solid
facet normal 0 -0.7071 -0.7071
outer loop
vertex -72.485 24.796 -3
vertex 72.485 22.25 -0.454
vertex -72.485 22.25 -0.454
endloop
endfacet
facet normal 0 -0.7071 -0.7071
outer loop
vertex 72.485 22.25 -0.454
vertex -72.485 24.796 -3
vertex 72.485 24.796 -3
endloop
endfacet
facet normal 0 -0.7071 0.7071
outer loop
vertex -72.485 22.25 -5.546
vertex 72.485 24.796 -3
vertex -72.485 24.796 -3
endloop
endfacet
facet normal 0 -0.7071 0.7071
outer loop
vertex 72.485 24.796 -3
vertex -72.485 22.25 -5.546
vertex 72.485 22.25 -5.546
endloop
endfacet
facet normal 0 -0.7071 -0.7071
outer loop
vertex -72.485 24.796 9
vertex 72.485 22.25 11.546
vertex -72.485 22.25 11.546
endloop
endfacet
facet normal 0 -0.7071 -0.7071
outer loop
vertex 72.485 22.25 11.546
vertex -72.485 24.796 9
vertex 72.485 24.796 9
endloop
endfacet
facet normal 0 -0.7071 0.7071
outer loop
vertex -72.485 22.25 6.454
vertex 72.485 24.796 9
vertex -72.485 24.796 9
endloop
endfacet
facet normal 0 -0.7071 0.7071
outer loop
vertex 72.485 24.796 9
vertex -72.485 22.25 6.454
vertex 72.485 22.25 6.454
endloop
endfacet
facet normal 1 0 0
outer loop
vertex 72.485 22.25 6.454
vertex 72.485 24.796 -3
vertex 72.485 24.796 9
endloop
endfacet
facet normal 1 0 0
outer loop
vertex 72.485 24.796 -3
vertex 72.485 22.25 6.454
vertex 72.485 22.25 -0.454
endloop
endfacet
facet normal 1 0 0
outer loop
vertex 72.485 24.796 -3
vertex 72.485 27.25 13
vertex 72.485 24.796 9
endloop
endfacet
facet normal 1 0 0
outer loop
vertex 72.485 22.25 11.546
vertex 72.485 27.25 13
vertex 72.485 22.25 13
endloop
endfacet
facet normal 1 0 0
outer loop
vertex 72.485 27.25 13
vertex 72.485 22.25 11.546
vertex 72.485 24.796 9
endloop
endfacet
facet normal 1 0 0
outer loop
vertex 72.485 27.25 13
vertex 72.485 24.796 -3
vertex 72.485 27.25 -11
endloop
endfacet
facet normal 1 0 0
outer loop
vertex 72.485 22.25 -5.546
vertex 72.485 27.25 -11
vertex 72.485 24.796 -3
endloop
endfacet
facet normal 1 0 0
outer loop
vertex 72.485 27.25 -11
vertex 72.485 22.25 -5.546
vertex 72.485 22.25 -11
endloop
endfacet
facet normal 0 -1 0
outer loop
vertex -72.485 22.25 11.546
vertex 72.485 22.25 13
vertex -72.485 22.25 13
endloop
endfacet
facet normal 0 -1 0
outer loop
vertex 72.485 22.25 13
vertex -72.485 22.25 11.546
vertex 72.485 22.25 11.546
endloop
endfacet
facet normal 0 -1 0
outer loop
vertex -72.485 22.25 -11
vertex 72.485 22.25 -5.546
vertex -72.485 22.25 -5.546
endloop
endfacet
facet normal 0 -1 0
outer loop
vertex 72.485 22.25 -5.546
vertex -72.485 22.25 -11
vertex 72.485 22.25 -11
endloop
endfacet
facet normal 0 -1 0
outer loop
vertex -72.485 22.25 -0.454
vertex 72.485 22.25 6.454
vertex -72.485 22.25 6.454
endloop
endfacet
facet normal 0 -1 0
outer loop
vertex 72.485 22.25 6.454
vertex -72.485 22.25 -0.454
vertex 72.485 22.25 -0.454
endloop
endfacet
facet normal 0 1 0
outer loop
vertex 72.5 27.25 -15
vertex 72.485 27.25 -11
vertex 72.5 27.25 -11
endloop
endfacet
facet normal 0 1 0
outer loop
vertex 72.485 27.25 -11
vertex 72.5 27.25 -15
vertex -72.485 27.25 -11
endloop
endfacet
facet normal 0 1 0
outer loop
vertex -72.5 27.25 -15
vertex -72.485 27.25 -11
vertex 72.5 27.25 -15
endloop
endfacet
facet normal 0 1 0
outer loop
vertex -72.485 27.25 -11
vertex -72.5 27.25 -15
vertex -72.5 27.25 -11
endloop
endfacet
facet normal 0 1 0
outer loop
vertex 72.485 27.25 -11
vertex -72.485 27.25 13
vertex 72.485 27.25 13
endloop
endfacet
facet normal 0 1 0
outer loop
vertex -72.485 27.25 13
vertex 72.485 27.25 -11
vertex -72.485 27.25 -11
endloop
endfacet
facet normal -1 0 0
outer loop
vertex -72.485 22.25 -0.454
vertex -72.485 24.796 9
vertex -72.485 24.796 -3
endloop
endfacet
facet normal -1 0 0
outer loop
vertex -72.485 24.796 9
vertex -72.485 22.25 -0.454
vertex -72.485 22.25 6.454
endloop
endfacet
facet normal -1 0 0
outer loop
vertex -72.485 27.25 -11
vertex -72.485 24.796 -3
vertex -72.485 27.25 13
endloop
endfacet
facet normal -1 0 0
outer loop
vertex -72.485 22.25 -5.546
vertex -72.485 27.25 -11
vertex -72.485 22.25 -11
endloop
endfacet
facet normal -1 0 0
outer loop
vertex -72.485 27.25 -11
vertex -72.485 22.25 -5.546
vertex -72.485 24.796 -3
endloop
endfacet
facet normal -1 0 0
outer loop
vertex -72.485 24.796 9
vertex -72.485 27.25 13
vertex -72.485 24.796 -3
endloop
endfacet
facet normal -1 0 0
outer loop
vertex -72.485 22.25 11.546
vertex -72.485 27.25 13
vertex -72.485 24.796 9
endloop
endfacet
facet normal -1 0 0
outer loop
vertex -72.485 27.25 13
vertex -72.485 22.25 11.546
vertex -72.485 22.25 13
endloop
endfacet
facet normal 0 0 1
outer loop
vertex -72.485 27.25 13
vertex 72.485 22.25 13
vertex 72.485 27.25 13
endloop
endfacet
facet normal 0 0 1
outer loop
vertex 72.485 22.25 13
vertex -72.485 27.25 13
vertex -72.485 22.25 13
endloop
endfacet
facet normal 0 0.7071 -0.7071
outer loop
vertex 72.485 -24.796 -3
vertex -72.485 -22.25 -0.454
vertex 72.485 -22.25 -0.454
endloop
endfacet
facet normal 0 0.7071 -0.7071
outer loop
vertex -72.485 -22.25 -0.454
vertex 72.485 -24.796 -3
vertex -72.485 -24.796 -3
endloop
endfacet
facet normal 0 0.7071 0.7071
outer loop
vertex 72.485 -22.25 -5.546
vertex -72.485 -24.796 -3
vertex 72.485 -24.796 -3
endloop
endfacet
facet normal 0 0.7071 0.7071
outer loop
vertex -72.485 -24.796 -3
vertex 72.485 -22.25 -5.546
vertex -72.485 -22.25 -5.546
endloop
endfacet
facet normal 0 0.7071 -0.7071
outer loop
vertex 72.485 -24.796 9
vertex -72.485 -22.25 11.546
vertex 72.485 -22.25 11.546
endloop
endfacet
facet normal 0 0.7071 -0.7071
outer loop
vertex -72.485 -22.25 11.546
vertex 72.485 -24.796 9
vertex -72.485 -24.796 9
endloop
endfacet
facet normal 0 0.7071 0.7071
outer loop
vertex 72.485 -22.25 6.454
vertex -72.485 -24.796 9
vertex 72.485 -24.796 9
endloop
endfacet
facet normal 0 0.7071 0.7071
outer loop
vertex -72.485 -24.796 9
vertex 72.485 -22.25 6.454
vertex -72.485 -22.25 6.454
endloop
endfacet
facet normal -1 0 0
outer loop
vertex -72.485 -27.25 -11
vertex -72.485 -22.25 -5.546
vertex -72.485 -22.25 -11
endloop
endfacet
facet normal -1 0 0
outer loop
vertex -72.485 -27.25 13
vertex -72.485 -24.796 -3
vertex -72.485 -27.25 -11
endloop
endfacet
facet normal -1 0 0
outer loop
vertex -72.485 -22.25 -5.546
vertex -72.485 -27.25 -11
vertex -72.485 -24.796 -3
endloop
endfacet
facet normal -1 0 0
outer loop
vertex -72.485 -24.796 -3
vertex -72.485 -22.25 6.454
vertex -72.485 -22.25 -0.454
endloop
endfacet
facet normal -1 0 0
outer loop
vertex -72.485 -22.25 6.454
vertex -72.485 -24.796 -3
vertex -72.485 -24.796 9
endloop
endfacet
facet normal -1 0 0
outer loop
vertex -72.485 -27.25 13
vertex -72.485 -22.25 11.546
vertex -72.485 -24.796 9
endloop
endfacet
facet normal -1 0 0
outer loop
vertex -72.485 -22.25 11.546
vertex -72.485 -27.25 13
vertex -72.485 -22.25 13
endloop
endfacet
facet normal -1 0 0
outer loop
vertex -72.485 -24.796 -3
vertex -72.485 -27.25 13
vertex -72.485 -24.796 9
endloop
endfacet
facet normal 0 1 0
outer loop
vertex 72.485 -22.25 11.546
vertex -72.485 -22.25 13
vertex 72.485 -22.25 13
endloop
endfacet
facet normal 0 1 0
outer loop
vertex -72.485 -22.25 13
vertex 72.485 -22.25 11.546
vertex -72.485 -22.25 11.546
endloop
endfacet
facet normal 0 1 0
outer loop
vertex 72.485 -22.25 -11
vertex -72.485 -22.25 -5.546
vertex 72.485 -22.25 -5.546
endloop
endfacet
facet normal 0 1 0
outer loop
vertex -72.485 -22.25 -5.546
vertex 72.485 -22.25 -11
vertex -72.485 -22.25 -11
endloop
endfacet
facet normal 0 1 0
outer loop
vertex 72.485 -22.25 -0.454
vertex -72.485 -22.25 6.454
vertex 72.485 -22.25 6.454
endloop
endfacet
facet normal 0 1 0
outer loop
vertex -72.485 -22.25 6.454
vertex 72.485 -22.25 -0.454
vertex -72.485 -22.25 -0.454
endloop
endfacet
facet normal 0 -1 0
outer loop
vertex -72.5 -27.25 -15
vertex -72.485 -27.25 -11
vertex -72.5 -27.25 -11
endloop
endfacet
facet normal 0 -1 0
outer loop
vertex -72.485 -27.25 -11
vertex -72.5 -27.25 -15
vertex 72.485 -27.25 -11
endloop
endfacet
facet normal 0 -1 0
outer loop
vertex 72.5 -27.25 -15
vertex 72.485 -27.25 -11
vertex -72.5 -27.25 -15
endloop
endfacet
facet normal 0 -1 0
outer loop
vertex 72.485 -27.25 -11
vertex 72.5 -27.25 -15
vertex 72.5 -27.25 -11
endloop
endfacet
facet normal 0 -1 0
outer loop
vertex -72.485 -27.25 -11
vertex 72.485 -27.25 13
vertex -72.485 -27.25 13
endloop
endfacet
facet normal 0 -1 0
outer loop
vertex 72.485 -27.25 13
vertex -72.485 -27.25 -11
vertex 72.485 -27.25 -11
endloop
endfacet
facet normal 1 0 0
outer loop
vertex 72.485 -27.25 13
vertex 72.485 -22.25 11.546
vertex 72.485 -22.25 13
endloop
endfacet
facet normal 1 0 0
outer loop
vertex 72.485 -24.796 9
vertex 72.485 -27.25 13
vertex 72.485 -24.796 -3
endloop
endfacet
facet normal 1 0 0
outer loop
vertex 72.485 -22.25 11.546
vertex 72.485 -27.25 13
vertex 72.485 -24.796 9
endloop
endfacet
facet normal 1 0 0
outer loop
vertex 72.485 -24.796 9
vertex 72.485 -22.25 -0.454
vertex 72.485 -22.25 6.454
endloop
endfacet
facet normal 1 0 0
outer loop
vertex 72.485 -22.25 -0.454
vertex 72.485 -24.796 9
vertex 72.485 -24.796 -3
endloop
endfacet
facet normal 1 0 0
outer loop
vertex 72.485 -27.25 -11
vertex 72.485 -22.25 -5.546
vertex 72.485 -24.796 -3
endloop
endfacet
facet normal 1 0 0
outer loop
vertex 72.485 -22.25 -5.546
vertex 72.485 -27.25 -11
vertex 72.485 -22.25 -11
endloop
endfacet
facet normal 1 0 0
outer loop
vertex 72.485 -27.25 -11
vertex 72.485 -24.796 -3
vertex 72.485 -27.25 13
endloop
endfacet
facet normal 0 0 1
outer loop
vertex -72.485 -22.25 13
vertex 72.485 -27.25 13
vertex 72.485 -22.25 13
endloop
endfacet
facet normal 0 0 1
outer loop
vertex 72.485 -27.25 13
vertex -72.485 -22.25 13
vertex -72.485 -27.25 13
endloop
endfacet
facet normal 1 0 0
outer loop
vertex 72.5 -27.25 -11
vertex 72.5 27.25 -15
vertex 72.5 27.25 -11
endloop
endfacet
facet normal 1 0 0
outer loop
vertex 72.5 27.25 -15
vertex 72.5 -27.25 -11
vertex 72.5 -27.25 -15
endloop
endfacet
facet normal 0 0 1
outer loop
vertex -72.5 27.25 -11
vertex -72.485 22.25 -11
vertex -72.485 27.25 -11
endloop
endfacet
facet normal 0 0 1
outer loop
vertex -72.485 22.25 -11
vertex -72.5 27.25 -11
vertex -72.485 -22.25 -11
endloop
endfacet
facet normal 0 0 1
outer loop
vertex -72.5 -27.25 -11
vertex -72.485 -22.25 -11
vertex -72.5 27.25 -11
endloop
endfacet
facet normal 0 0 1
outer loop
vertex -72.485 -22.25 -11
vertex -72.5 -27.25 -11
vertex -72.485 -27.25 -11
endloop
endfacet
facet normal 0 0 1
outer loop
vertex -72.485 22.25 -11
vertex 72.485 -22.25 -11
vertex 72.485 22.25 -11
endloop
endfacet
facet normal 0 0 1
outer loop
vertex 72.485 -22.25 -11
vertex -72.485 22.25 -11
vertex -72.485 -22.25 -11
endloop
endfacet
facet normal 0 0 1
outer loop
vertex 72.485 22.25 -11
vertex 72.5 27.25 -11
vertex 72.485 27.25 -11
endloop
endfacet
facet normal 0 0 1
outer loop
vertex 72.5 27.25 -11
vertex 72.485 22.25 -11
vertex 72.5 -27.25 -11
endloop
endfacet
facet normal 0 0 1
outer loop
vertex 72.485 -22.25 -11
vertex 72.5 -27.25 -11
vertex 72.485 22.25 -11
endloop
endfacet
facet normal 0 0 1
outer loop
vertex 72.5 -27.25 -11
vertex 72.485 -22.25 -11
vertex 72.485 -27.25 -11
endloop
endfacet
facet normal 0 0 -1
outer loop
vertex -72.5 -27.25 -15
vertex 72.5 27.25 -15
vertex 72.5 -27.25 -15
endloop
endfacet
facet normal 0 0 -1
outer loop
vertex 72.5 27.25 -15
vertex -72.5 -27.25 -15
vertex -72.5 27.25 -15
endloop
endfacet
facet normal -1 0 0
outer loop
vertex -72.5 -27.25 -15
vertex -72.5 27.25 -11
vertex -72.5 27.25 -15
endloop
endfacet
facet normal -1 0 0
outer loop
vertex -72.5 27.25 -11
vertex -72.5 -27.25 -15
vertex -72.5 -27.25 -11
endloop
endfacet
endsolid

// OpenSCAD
$fn = 100;
union()
{
  translate(v = [0, 0, -13])
  {
    cube(size = [145, 54.5, 4], center = true);
  }
  rotate(a = 90, v = [1, 0, 0])
  {
    translate(v = [0, 0, -24.75])
    {
      union()
      {
        difference()
        {
          cube(size = [144.97, 26, 5], center = true);
          translate(v = [0, 3, 0])
          {
            union()
            {
              translate(v = [0, -6, 0])
              {
                translate(v = [0, 0, 2.5])
                {
                  rotate(a = 45, v = [1, 0, 0])
                  {
                    cube(size = [145, 3.6, 3.6], center = true);
                  }
                }
              }
              translate(v = [0, 6, 0])
              {
                translate(v = [0, 0, 2.5])
                {
                  rotate(a = 45, v = [1, 0, 0])
                  {
                    cube(size = [145, 3.6, 3.6], center = true);
                  }
                }
              }
            }
          }
        }
        translate(v = [0, 0, 49.5])
        {
          rotate(a = 180, v = [0, 1, 0])
          {
            difference()
            {
              cube(size = [144.97, 26, 5], center = true);
              translate(v = [0, 3, 0])
              {
                union()
                {
                  translate(v = [0, -6, 0])
                  {
                    translate(v = [0, 0, 2.5])
                    {
                      rotate(a = 45, v = [1, 0, 0])
                      {
                        cube(size = [145, 3.6, 3.6], center = true);
                      }
                    }
                  }
                  translate(v = [0, 6, 0])
                  {
                    translate(v = [0, 0, 2.5])
                    {
                      rotate(a = 45, v = [1, 0, 0])
                      {
                        cube(size = [145, 3.6, 3.6], center = true);
                      }
                    }
                  }
                }
              }
            }
          }
        }
      }
    }
  }
}
